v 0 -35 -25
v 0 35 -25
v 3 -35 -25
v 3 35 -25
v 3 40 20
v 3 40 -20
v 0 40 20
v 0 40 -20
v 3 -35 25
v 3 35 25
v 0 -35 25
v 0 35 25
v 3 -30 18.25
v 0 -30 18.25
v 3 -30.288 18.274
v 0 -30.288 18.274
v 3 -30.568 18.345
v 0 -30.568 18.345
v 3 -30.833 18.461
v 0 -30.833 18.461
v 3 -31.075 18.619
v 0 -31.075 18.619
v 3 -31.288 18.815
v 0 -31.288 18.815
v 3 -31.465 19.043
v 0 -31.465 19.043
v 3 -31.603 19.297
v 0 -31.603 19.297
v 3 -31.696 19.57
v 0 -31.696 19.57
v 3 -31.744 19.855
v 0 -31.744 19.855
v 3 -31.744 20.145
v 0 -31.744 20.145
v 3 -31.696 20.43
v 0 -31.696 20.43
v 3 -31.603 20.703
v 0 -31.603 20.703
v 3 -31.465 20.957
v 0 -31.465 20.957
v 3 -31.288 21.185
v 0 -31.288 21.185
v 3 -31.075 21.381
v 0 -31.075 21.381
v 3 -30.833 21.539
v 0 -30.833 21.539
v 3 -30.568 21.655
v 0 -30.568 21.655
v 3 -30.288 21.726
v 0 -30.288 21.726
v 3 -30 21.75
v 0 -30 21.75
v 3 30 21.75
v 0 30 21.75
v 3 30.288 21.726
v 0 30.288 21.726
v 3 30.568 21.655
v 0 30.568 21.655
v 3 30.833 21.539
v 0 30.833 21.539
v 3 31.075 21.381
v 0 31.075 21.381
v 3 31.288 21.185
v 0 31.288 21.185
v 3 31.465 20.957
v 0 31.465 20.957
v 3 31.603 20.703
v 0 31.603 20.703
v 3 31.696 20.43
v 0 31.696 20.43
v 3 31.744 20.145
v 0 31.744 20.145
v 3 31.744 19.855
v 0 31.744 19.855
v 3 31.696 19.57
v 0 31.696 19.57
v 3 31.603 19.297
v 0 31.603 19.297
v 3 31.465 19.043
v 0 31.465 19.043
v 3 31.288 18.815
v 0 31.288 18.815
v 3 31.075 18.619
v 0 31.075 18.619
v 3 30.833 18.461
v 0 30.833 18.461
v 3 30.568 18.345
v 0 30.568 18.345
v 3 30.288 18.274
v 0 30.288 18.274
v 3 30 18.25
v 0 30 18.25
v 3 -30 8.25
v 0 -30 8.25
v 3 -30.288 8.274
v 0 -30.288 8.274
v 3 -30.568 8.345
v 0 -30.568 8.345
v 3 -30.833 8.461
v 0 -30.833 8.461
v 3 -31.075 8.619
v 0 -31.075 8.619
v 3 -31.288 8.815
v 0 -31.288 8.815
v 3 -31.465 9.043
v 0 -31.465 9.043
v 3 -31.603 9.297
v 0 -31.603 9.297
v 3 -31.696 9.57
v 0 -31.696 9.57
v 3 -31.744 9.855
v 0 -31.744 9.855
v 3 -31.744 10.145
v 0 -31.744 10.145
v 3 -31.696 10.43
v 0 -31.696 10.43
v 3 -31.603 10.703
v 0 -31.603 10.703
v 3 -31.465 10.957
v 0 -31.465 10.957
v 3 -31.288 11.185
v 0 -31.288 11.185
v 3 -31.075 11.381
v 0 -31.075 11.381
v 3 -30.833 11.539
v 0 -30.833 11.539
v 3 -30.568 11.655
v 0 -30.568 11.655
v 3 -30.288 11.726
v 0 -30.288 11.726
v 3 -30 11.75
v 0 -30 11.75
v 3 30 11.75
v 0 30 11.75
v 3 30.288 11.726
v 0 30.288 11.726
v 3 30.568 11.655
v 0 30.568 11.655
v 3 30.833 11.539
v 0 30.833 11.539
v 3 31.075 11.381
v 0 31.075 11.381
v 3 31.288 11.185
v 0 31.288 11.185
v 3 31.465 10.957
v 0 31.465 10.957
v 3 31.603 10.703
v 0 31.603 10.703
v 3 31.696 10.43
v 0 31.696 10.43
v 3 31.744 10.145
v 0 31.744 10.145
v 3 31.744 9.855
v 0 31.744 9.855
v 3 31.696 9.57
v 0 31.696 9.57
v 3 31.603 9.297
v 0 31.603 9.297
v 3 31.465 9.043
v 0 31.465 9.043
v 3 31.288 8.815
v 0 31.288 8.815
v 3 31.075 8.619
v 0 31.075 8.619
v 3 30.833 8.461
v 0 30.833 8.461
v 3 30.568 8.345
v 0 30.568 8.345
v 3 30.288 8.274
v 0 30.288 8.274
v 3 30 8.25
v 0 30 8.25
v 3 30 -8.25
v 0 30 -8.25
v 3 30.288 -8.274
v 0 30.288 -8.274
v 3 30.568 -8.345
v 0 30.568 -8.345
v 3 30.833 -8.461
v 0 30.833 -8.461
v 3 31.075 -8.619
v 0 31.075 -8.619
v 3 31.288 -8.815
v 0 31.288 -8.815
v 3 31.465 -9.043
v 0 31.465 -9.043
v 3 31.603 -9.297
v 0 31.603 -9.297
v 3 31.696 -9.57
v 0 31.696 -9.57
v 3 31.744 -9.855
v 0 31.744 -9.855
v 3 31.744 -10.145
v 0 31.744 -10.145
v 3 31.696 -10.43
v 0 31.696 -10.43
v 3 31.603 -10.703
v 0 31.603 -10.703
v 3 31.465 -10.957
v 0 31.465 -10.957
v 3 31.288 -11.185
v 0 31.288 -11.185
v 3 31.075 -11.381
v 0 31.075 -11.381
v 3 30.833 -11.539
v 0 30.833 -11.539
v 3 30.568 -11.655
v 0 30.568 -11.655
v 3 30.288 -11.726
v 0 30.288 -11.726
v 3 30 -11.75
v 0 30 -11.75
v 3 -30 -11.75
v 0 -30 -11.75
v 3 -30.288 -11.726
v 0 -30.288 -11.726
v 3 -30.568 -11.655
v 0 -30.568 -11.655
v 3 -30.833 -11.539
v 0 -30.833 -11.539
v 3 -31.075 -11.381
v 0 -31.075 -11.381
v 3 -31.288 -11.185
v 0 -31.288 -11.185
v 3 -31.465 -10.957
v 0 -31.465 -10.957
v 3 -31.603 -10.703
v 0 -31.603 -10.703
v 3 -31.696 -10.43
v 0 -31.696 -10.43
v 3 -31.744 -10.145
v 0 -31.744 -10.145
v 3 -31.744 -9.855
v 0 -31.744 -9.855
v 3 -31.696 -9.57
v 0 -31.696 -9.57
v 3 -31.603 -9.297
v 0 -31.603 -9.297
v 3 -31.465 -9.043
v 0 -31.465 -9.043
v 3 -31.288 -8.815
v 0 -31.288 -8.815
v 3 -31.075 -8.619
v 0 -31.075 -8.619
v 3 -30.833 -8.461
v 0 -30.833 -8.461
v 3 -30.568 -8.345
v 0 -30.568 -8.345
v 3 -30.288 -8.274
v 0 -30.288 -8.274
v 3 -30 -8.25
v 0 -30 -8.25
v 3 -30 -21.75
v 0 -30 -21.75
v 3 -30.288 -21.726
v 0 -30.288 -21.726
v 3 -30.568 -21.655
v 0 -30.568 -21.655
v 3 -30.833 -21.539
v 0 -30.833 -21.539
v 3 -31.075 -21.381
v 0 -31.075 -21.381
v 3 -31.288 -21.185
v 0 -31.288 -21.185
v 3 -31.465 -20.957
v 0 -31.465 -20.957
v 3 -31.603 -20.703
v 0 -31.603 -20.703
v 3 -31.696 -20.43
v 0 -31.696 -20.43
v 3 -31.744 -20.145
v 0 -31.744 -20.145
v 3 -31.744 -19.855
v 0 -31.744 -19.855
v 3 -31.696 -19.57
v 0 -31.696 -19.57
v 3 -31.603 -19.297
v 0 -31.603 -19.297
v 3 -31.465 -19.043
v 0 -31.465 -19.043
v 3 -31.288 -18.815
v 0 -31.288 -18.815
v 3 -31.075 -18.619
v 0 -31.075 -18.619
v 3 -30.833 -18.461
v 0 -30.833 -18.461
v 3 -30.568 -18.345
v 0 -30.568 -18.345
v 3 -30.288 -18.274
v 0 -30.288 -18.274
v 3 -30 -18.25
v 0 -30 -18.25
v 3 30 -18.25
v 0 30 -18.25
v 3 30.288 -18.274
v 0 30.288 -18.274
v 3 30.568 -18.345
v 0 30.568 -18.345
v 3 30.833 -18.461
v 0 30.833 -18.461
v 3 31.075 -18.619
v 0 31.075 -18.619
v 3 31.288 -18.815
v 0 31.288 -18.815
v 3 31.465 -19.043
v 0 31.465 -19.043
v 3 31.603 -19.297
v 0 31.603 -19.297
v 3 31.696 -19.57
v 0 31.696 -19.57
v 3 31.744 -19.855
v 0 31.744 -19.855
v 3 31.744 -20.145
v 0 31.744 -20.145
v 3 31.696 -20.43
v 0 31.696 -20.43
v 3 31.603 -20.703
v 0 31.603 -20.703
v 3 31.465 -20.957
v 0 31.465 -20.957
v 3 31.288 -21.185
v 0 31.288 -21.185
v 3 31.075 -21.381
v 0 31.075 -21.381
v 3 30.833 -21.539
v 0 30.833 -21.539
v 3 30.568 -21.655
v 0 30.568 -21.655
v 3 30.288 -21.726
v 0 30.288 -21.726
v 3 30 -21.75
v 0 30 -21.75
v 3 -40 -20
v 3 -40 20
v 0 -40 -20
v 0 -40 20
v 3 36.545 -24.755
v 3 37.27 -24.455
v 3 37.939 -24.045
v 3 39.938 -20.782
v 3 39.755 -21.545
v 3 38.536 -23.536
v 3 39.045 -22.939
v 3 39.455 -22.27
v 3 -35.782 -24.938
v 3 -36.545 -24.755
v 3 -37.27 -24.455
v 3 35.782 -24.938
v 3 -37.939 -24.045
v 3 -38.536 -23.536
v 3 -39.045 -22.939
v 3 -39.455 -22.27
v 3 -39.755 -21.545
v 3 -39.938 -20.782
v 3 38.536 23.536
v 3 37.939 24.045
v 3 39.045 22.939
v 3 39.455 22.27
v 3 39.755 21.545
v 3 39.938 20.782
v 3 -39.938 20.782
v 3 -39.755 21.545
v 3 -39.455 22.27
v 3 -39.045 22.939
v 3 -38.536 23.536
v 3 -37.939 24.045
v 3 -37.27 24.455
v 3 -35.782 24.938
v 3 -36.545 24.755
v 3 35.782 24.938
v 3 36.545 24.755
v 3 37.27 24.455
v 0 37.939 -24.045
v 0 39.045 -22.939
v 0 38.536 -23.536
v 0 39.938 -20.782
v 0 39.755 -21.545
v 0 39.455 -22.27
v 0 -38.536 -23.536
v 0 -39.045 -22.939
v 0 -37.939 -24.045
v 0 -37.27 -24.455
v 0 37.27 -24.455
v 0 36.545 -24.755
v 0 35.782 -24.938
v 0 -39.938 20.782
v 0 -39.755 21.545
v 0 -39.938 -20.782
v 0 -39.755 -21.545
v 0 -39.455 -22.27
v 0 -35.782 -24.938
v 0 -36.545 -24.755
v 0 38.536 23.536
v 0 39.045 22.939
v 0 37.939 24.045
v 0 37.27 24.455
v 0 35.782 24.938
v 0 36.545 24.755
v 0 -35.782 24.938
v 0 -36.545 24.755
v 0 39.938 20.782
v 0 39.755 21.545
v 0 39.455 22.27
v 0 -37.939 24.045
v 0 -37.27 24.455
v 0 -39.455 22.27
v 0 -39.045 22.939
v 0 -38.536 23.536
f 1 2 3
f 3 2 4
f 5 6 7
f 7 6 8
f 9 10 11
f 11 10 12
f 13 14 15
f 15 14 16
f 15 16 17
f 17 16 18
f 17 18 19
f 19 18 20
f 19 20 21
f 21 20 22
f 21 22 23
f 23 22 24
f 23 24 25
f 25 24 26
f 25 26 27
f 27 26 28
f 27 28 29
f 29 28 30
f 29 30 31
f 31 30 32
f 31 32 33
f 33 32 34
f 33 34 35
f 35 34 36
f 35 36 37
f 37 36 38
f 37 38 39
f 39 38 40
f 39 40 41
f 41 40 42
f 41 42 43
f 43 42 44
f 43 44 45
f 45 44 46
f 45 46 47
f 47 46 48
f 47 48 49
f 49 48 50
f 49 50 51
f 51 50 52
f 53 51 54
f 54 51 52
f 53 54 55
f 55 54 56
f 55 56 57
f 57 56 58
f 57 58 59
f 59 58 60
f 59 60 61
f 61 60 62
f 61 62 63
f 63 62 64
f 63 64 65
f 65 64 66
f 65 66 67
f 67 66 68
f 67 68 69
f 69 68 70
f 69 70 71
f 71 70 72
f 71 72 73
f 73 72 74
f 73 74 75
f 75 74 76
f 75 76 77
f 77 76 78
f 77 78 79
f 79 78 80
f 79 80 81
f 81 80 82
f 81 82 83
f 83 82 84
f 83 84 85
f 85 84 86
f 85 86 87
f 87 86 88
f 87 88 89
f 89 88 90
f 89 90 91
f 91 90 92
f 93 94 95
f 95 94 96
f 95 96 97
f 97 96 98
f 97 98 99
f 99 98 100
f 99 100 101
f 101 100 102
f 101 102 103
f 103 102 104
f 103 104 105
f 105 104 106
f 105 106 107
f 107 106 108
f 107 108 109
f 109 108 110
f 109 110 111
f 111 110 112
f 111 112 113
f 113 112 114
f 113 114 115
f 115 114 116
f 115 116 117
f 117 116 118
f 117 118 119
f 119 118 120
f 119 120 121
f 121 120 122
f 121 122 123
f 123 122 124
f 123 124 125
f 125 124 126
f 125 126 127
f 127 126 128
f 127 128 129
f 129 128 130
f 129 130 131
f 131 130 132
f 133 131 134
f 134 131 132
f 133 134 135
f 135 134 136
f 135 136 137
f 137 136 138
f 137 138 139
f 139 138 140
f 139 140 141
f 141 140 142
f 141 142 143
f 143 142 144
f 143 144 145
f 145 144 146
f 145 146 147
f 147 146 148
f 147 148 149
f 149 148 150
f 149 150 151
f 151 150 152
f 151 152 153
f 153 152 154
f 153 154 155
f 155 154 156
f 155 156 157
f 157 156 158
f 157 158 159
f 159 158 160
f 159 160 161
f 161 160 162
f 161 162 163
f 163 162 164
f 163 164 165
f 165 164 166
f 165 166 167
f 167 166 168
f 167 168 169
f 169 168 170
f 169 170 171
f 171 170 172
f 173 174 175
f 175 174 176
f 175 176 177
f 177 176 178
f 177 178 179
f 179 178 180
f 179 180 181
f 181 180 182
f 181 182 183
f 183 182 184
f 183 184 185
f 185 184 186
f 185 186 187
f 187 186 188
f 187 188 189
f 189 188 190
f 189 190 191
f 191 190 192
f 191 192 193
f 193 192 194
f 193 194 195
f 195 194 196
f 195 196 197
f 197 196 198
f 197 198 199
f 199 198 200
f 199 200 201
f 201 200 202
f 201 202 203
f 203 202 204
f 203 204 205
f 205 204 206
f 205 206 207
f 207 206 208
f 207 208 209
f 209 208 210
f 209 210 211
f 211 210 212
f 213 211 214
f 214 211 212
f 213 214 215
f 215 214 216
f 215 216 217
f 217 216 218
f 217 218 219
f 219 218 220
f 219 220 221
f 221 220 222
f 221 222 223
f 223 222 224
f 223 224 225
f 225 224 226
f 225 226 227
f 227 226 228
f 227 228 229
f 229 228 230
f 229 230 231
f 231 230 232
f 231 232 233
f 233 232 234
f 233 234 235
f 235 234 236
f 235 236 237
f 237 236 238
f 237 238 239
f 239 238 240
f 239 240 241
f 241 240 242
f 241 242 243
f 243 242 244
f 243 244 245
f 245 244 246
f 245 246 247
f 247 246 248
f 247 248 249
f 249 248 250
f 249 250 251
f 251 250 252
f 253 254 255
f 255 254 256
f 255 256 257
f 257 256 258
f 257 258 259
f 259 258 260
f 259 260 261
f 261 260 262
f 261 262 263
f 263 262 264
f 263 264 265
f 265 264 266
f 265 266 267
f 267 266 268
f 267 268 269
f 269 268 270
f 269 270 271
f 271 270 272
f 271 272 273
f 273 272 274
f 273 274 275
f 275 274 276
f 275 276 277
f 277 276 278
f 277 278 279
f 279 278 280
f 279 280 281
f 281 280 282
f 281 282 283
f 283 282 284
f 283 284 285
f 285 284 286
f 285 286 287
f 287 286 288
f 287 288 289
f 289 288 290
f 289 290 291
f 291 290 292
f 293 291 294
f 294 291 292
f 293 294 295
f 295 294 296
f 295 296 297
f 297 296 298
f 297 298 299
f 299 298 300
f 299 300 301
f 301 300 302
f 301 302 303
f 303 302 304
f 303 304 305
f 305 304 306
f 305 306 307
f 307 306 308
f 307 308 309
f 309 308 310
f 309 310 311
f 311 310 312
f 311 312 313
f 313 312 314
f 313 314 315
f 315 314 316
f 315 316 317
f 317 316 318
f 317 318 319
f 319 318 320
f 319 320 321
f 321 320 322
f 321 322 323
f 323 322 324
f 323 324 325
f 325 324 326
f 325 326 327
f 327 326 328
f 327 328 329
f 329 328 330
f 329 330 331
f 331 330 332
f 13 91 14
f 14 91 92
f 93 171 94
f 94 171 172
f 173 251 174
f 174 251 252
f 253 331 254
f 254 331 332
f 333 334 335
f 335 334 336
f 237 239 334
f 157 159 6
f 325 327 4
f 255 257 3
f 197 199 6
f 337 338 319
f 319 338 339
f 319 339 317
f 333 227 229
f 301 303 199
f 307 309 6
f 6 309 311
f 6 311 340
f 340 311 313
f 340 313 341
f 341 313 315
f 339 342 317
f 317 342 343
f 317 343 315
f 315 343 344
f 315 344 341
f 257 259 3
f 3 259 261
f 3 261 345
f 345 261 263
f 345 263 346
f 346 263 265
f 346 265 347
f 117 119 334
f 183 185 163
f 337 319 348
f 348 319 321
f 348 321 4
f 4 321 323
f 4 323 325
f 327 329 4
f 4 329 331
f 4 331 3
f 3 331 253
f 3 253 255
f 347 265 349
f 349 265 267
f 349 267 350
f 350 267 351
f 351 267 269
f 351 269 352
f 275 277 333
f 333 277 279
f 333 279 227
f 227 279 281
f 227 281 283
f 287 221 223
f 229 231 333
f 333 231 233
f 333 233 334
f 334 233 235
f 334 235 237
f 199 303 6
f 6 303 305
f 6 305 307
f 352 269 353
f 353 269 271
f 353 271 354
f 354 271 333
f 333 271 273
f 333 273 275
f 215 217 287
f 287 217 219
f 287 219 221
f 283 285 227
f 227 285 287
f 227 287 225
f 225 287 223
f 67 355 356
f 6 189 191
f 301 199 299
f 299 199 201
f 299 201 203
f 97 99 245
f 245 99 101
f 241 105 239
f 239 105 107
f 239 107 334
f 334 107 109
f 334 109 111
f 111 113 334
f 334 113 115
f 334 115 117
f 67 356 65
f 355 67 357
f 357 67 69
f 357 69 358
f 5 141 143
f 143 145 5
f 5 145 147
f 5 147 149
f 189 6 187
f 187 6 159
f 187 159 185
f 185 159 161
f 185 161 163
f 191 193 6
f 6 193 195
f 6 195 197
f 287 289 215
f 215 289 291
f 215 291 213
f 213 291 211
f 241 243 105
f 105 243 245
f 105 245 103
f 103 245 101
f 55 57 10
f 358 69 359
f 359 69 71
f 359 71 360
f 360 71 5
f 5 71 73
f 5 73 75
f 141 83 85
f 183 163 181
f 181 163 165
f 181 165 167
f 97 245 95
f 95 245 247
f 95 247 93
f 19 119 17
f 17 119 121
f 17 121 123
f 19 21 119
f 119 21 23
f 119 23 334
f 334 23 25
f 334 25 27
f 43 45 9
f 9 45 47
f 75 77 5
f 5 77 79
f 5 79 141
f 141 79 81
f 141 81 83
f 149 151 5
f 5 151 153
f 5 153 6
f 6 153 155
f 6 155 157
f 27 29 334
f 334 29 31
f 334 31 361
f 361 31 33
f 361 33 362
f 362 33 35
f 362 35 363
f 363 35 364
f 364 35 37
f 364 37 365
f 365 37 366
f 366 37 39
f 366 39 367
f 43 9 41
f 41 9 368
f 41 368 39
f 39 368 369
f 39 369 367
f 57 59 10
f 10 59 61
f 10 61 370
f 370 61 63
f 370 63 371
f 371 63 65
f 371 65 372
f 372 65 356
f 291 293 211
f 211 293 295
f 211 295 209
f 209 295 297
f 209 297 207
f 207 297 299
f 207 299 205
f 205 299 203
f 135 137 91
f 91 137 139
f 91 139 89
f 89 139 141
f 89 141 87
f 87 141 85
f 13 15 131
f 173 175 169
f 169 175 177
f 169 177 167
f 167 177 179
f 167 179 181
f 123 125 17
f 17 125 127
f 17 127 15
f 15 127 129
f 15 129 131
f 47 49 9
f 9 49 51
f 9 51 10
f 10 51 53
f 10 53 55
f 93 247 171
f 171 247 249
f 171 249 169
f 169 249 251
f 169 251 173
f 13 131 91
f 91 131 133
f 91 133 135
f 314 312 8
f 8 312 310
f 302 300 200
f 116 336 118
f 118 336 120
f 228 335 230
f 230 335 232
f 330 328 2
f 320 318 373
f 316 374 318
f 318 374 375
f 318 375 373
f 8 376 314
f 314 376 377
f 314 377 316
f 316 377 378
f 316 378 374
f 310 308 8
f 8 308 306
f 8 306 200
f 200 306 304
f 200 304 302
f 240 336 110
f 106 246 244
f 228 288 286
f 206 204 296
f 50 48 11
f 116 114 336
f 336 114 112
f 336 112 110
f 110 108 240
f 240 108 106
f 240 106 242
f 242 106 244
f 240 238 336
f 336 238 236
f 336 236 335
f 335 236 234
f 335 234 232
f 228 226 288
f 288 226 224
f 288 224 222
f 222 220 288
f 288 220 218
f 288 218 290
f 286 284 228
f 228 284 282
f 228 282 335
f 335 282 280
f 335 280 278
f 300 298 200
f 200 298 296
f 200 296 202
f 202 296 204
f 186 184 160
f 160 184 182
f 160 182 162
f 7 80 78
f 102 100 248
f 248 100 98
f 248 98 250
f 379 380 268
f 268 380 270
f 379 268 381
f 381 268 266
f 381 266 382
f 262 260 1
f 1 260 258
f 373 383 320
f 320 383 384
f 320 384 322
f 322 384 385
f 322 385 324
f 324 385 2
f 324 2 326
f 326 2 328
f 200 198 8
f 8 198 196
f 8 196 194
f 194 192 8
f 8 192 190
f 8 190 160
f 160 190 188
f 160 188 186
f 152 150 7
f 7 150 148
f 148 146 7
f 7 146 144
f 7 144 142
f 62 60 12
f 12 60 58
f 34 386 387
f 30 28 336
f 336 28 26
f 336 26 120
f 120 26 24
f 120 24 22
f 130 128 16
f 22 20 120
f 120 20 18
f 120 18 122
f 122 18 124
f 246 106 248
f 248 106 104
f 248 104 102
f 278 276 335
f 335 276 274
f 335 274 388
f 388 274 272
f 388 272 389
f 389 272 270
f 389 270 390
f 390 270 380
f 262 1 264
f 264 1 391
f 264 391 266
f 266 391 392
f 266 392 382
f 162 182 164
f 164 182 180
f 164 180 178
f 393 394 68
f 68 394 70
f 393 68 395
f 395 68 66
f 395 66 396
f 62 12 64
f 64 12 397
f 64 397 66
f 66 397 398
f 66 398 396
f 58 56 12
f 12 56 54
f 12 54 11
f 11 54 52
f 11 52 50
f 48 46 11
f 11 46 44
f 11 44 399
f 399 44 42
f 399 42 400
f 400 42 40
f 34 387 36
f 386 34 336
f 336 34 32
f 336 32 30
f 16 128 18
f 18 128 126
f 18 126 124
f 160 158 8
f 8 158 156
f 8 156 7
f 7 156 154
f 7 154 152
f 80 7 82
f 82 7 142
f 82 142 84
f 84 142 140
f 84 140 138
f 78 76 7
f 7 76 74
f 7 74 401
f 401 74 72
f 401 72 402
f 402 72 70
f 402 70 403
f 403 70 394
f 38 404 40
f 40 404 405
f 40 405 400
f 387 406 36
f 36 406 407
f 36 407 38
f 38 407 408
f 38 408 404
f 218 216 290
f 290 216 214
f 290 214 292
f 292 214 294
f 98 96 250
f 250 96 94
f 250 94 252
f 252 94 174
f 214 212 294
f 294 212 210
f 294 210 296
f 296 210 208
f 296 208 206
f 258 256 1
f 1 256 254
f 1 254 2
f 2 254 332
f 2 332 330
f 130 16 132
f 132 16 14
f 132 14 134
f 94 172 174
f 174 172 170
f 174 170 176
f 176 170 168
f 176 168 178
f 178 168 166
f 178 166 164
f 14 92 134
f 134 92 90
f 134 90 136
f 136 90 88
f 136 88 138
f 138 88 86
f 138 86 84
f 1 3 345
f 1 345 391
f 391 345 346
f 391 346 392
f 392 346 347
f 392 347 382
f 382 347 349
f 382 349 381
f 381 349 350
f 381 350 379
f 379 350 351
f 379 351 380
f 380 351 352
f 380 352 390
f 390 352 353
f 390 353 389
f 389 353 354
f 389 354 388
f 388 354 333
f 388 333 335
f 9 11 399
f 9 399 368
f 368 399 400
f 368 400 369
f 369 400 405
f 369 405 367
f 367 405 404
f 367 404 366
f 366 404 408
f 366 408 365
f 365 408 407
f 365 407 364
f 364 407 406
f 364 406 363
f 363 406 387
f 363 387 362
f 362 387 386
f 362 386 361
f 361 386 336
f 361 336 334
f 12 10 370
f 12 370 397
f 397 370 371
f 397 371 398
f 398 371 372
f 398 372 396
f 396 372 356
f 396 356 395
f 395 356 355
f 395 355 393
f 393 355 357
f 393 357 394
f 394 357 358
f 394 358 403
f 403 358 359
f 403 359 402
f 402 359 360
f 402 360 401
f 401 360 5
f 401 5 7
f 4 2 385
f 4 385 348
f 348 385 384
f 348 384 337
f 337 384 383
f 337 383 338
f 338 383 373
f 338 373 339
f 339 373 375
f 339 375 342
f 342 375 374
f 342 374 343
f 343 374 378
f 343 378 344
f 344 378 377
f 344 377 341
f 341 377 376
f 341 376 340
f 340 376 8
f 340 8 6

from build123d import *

# Parameters (mm, degrees)
SKETCH_1_W      = 50
SKETCH_1_H      = 80
SKETCH_1_R      = 1.75
EXTRUDE_1_DEPTH = 3
FILLET_1_R      = 5


with BuildPart() as part:
    # 草图1 → 凸台-拉伸1 (new body)
    # profile 1 of 4: a face of its own
    with BuildSketch(Plane(origin=(0, 0, 0), x_dir=(0, 0, -1), z_dir=(1, 0, 0))):
        Rectangle(SKETCH_1_W, SKETCH_1_H)
        with BuildLine():
            Line((-21.75, -30), (-21.75, 30))
            ThreePointArc((-21.75, 30), (-20, 31.75), (-18.25, 30))
            Line((-18.25, 30), (-18.25, -30))
            ThreePointArc((-18.25, -30), (-20, -31.75), (-21.75, -30))
        make_face(mode=Mode.SUBTRACT)
        with BuildLine():
            Line((-11.75, -30), (-11.75, 30))
            ThreePointArc((-11.75, 30), (-10, 31.75), (-8.25, 30))
            Line((-8.25, 30), (-8.25, -30))
            ThreePointArc((-8.25, -30), (-10, -31.75), (-11.75, -30))
        make_face(mode=Mode.SUBTRACT)
        with BuildLine():
            Line((-1.75, -30), (-1.75, 30))
            ThreePointArc((-1.75, 30), (0, 31.75), (1.75, 30))
            Line((1.75, 30), (1.75, -30))
            ThreePointArc((1.75, -30), (0, -31.75), (-1.75, -30))
        make_face(mode=Mode.SUBTRACT)
        with BuildLine():
            Line((8.25, -30), (8.25, 30))
            ThreePointArc((8.25, 30), (10, 31.75), (11.75, 30))
            Line((11.75, 30), (11.75, -30))
            ThreePointArc((11.75, -30), (10, -31.75), (8.25, -30))
        make_face(mode=Mode.SUBTRACT)
        with BuildLine():
            Line((21.75, 30), (21.75, -30))
            ThreePointArc((21.75, -30), (20, -31.75), (18.25, -30))
            Line((18.25, -30), (18.25, 30))
            ThreePointArc((18.25, 30), (20, 31.75), (21.75, 30))
        make_face(mode=Mode.SUBTRACT)
    # profile 2 of 4: a face of its own
    with BuildSketch(Plane(origin=(0, 0, 0), x_dir=(0, 0, -1), z_dir=(1, 0, 0))):
        with BuildLine():
            ThreePointArc((1.75, 30), (0, 28.25), (-1.75, 30))
            Line((-1.75, 30), (-1.75, -30))
            ThreePointArc((-1.75, -30), (0, -28.25), (1.75, -30))
            Line((1.75, -30), (1.75, 30))
        make_face()
    # profile 3 of 4: a face of its own
    with BuildSketch(Plane(origin=(0, 0, 0), x_dir=(0, 0, -1), z_dir=(1, 0, 0))):
        with Locations((0, 30)):
            Circle(SKETCH_1_R)
    # profile 4 of 4: a face of its own
    with BuildSketch(Plane(origin=(0, 0, 0), x_dir=(0, 0, -1), z_dir=(1, 0, 0))):
        with Locations((0, -30)):
            Circle(SKETCH_1_R)
    extrude(amount=EXTRUDE_1_DEPTH)

    # 圆角1
    fillet_1_edges = [part.edges().sort_by_distance(p)[0] for p in [
        (1.5, -40, -25),
        (1.5, -40, 25),
        (1.5, 40, 25),
        (1.5, 40, -25),
    ]]
    fillet(fillet_1_edges, radius=FILLET_1_R)


solid = part.part
